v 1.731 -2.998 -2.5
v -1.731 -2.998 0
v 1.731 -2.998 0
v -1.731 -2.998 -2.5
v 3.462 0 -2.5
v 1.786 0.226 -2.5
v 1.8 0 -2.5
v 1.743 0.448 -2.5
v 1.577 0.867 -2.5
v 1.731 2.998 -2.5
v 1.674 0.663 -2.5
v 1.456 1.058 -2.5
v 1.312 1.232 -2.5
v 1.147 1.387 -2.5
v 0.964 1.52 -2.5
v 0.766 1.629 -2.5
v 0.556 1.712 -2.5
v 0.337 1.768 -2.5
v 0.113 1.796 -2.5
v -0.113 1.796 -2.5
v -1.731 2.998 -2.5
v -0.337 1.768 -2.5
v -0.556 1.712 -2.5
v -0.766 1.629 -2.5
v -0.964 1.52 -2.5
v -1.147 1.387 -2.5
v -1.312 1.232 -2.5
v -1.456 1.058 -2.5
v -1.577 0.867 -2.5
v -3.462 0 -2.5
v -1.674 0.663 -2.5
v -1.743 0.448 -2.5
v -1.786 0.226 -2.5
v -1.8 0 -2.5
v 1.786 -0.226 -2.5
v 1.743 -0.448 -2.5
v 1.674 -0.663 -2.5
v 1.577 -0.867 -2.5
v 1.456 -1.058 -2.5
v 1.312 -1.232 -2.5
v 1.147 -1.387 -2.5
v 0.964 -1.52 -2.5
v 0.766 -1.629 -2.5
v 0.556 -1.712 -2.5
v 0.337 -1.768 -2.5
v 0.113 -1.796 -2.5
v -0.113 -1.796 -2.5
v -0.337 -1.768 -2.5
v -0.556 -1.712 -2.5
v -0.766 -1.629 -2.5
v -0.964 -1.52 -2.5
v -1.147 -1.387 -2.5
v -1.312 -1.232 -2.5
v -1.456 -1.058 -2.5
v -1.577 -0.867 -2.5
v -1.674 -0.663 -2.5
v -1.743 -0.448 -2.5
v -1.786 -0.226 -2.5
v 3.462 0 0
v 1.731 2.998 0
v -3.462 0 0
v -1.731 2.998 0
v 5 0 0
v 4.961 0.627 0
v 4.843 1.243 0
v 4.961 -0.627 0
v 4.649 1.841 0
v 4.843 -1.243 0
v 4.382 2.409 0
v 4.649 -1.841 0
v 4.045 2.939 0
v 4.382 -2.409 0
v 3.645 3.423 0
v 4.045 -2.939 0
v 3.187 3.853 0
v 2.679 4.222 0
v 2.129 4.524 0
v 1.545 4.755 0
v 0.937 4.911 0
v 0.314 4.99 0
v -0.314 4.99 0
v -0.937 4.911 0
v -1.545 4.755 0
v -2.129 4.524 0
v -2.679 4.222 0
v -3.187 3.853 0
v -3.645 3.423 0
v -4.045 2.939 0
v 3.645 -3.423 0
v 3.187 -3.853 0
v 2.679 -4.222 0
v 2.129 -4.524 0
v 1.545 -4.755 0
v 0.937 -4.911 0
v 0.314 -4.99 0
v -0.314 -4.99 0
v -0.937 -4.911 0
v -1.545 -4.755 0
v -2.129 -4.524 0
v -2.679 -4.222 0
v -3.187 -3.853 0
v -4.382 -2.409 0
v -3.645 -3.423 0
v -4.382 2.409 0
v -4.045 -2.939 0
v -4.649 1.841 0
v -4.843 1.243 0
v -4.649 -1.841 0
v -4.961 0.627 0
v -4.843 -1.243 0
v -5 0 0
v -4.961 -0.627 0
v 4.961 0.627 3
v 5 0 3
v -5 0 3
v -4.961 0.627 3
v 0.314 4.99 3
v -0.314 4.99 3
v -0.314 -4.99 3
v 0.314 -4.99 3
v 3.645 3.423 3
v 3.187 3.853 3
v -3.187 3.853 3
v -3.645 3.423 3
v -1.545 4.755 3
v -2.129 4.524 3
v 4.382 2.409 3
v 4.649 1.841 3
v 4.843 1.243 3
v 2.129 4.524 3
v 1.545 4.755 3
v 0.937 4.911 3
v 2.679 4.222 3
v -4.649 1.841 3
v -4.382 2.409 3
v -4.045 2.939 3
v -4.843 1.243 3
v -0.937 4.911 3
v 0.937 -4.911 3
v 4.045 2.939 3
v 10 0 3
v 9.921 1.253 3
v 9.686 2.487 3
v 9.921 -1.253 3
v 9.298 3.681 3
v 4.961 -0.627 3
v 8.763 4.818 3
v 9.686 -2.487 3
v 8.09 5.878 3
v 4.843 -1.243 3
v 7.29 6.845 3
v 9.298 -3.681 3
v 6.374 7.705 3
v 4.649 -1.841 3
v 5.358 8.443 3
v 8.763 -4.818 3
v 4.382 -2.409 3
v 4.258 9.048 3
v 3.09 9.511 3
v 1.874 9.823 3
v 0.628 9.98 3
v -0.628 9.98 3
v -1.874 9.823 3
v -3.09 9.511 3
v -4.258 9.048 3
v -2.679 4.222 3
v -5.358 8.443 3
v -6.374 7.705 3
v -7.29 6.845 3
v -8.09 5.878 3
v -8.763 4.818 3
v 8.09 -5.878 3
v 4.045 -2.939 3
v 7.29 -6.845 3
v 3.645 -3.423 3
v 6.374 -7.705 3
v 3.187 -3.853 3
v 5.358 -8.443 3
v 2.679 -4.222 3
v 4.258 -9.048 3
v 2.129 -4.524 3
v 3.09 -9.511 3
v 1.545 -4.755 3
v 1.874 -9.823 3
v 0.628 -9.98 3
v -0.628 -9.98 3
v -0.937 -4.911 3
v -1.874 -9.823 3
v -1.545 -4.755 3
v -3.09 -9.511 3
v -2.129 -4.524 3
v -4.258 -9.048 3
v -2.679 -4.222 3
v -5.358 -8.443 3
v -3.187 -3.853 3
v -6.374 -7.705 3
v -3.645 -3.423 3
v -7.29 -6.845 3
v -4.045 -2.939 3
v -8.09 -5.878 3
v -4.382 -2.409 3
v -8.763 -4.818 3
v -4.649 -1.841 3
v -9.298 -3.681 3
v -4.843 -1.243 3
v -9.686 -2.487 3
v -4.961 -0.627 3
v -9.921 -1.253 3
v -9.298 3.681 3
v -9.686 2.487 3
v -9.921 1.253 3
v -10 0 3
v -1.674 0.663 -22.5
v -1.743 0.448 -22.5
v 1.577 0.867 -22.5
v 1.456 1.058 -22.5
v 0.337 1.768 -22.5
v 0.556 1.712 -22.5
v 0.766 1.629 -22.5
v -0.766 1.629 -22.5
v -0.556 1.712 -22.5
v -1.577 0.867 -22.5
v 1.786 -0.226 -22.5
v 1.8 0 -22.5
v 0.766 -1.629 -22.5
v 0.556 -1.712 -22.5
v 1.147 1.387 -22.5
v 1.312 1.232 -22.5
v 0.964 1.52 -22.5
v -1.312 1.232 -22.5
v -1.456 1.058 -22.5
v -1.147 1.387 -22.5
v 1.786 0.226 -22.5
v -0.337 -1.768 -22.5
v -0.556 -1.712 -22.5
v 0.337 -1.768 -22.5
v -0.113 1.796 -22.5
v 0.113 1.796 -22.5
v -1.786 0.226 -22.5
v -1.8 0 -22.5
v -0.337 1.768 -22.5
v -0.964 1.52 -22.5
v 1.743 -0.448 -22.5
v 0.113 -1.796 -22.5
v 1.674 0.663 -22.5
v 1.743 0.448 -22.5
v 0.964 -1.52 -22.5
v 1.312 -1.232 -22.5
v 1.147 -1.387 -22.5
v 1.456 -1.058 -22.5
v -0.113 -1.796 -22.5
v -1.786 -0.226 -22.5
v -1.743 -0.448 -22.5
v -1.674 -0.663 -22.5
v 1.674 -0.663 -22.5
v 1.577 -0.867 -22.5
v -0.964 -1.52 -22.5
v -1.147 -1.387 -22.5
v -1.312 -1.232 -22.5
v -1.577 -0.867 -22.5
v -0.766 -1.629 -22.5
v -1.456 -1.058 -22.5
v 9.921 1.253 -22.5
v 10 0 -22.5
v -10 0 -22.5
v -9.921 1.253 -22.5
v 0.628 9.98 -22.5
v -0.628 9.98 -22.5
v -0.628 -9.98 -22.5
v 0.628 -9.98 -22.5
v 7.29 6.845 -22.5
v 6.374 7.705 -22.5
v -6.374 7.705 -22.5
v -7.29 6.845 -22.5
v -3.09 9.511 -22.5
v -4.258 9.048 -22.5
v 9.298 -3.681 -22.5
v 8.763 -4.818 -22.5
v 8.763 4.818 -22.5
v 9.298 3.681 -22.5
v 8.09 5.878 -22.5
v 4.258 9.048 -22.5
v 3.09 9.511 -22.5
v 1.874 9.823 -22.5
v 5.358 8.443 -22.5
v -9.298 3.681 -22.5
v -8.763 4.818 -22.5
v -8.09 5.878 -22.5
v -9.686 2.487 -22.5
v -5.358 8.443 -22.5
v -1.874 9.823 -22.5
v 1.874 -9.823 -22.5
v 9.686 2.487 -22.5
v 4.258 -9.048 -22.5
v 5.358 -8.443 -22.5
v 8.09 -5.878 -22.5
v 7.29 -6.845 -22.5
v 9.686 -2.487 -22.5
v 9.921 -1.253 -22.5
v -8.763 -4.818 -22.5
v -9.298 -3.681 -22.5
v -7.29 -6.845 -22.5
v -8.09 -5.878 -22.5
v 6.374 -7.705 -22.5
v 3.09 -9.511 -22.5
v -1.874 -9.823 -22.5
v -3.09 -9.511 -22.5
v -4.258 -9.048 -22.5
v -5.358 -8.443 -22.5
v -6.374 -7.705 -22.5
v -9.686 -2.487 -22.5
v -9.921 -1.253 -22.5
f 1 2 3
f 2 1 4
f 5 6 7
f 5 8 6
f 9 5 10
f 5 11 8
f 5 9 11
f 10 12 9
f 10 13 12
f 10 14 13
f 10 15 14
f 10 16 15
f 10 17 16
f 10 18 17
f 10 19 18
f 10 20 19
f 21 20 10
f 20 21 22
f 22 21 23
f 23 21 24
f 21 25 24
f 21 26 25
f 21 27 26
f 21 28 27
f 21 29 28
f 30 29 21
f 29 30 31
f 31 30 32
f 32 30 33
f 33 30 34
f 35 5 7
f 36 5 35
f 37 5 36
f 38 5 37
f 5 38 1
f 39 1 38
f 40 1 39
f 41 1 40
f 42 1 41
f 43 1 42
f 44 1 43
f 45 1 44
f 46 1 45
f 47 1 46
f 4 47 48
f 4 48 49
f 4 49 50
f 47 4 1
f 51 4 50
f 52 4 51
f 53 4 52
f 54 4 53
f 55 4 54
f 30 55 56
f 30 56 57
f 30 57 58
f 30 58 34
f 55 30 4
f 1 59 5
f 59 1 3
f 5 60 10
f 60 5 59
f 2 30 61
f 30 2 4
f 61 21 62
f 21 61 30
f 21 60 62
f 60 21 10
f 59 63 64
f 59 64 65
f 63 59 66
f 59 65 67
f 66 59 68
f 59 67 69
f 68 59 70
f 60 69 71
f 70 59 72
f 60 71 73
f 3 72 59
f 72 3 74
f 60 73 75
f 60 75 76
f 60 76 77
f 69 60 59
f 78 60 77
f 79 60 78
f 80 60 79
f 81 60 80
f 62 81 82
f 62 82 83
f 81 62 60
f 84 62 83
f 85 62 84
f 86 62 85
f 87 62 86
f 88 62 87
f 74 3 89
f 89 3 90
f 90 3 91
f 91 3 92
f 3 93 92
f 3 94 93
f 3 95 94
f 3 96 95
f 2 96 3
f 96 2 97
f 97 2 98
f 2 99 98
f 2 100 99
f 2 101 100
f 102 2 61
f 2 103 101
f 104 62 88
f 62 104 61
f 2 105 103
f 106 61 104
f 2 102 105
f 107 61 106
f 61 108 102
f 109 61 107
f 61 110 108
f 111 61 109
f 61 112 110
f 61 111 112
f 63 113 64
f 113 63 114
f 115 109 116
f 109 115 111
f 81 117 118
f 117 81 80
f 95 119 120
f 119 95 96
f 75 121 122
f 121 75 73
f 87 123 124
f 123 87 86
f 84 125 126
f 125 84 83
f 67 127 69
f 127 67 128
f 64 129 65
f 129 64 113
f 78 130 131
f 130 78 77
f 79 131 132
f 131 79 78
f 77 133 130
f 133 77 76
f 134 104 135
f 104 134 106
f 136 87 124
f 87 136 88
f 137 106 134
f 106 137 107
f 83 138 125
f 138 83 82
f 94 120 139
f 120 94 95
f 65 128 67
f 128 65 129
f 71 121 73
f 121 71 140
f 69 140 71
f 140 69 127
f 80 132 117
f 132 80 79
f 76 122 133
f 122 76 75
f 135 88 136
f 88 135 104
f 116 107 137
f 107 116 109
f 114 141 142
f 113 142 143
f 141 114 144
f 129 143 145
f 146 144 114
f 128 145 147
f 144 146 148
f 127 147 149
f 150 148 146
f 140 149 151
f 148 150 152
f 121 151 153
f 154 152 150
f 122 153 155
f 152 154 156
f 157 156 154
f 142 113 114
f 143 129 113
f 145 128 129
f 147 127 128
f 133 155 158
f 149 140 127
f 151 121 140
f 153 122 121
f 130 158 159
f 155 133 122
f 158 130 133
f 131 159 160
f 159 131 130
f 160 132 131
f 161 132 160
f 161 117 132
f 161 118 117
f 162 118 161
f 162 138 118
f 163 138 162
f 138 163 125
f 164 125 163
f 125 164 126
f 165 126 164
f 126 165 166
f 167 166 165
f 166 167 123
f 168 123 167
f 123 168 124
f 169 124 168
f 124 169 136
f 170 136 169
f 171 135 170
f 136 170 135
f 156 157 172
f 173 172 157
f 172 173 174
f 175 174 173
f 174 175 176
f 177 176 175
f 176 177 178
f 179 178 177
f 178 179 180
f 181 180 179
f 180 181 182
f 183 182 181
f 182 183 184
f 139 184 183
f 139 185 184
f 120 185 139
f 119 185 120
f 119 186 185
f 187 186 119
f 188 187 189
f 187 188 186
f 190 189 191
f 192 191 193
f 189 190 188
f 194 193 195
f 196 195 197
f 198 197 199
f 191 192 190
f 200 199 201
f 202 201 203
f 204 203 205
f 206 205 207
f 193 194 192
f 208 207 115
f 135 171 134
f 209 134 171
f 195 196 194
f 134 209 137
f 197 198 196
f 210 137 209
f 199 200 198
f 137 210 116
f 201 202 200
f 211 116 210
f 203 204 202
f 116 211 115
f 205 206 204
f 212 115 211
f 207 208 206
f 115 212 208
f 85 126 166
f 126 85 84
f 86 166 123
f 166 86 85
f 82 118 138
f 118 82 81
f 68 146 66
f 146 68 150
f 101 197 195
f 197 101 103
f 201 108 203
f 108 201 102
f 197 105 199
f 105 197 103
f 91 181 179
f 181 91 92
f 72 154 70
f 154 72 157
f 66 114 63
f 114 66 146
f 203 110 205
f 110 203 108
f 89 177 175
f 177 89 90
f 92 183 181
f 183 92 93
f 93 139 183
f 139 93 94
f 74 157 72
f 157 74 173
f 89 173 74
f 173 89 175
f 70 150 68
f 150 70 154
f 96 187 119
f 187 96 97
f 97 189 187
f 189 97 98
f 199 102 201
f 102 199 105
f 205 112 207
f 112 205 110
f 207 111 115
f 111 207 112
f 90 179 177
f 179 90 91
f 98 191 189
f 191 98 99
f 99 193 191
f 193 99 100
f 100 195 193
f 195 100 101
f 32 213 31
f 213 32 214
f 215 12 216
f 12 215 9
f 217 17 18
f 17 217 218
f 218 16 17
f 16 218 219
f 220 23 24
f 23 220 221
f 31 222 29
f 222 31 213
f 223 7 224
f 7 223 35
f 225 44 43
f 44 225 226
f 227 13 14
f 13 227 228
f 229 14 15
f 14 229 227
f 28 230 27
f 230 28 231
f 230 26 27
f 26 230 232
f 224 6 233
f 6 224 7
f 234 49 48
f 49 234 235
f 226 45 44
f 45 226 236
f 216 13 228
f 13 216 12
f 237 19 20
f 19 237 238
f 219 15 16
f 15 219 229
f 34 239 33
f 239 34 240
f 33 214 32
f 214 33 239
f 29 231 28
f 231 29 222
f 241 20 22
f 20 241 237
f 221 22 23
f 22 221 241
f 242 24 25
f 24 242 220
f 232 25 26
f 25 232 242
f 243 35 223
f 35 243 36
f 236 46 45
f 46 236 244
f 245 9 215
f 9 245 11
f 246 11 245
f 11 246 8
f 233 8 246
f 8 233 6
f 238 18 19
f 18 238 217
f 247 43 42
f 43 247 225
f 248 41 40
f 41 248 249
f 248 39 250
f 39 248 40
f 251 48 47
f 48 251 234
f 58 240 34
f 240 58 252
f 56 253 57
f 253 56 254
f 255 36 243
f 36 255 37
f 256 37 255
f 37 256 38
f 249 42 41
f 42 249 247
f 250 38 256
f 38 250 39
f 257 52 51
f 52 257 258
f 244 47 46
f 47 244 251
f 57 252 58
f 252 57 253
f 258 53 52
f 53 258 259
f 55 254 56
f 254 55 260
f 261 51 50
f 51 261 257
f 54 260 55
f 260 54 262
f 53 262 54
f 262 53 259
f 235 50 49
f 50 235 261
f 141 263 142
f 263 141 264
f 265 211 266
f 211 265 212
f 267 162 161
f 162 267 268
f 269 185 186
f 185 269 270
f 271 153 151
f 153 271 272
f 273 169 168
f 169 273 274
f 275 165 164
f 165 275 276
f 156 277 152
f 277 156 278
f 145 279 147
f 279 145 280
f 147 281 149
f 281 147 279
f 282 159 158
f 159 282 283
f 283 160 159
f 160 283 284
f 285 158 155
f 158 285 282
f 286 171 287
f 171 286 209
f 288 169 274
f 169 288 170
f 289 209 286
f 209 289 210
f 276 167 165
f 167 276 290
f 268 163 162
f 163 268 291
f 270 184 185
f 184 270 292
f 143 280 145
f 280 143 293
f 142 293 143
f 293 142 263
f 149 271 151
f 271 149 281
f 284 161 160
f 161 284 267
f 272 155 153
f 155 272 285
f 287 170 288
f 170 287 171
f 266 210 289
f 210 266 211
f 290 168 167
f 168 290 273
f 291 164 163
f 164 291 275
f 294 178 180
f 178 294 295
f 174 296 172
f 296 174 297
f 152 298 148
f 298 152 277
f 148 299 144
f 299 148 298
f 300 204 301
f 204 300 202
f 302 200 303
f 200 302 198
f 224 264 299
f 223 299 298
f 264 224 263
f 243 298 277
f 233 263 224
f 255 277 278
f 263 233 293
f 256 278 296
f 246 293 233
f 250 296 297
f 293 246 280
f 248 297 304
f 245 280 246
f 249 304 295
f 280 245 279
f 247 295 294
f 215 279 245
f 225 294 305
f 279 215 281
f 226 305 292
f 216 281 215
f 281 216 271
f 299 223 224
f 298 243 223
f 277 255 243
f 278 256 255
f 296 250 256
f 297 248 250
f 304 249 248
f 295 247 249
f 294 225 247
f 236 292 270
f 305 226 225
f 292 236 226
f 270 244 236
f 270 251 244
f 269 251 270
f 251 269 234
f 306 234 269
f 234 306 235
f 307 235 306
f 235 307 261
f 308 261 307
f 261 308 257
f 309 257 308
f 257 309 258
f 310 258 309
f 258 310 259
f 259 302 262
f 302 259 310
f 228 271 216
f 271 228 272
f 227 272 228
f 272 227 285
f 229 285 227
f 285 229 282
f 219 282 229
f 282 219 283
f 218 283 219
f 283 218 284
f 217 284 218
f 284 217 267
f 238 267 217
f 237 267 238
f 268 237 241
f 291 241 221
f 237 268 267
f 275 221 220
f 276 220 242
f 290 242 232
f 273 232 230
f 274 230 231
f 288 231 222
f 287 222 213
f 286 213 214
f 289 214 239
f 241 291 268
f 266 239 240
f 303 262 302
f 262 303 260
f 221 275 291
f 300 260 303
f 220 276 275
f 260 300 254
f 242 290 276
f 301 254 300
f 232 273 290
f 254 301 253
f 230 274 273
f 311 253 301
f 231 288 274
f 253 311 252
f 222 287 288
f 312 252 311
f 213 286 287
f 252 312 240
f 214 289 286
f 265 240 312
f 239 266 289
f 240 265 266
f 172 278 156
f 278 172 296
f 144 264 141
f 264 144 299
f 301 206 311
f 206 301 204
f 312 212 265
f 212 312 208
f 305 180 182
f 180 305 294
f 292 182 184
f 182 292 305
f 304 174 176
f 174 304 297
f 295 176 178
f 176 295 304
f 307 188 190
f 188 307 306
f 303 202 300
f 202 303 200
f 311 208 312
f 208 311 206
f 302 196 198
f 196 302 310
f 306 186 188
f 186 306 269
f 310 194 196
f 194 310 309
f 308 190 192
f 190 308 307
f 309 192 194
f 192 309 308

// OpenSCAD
$fn = 50;


difference() {
	union() {
		translate(v = [0, 0, -22.5000000000]) {
			cylinder(h = 25.5000000000, r = 10.0000000000);
		}
	}
	union() {
		translate(v = [0, 0, 0]) {
			rotate(a = [0, 0, 0]) {
				difference() {
					union() {
						translate(v = [0, 0, -2.5000000000]) {
							linear_extrude(height = 2.5000000000) {
								polygon(points = [[3.4620000000, 0.0000000000], [1.7310000000, 2.9981799479], [-1.7310000000, 2.9981799479], [-3.4620000000, 0.0000000000], [-1.7310000000, -2.9981799479], [1.7310000000, -2.9981799479]]);
							}
						}
					}
					union();
				}
			}
		}
		#cylinder(h = 3, r = 5.0000000000);
		#translate(v = [0, 0, -100.0000000000]) {
			cylinder(h = 200, r = 1.8000000000);
		}
	}
}
